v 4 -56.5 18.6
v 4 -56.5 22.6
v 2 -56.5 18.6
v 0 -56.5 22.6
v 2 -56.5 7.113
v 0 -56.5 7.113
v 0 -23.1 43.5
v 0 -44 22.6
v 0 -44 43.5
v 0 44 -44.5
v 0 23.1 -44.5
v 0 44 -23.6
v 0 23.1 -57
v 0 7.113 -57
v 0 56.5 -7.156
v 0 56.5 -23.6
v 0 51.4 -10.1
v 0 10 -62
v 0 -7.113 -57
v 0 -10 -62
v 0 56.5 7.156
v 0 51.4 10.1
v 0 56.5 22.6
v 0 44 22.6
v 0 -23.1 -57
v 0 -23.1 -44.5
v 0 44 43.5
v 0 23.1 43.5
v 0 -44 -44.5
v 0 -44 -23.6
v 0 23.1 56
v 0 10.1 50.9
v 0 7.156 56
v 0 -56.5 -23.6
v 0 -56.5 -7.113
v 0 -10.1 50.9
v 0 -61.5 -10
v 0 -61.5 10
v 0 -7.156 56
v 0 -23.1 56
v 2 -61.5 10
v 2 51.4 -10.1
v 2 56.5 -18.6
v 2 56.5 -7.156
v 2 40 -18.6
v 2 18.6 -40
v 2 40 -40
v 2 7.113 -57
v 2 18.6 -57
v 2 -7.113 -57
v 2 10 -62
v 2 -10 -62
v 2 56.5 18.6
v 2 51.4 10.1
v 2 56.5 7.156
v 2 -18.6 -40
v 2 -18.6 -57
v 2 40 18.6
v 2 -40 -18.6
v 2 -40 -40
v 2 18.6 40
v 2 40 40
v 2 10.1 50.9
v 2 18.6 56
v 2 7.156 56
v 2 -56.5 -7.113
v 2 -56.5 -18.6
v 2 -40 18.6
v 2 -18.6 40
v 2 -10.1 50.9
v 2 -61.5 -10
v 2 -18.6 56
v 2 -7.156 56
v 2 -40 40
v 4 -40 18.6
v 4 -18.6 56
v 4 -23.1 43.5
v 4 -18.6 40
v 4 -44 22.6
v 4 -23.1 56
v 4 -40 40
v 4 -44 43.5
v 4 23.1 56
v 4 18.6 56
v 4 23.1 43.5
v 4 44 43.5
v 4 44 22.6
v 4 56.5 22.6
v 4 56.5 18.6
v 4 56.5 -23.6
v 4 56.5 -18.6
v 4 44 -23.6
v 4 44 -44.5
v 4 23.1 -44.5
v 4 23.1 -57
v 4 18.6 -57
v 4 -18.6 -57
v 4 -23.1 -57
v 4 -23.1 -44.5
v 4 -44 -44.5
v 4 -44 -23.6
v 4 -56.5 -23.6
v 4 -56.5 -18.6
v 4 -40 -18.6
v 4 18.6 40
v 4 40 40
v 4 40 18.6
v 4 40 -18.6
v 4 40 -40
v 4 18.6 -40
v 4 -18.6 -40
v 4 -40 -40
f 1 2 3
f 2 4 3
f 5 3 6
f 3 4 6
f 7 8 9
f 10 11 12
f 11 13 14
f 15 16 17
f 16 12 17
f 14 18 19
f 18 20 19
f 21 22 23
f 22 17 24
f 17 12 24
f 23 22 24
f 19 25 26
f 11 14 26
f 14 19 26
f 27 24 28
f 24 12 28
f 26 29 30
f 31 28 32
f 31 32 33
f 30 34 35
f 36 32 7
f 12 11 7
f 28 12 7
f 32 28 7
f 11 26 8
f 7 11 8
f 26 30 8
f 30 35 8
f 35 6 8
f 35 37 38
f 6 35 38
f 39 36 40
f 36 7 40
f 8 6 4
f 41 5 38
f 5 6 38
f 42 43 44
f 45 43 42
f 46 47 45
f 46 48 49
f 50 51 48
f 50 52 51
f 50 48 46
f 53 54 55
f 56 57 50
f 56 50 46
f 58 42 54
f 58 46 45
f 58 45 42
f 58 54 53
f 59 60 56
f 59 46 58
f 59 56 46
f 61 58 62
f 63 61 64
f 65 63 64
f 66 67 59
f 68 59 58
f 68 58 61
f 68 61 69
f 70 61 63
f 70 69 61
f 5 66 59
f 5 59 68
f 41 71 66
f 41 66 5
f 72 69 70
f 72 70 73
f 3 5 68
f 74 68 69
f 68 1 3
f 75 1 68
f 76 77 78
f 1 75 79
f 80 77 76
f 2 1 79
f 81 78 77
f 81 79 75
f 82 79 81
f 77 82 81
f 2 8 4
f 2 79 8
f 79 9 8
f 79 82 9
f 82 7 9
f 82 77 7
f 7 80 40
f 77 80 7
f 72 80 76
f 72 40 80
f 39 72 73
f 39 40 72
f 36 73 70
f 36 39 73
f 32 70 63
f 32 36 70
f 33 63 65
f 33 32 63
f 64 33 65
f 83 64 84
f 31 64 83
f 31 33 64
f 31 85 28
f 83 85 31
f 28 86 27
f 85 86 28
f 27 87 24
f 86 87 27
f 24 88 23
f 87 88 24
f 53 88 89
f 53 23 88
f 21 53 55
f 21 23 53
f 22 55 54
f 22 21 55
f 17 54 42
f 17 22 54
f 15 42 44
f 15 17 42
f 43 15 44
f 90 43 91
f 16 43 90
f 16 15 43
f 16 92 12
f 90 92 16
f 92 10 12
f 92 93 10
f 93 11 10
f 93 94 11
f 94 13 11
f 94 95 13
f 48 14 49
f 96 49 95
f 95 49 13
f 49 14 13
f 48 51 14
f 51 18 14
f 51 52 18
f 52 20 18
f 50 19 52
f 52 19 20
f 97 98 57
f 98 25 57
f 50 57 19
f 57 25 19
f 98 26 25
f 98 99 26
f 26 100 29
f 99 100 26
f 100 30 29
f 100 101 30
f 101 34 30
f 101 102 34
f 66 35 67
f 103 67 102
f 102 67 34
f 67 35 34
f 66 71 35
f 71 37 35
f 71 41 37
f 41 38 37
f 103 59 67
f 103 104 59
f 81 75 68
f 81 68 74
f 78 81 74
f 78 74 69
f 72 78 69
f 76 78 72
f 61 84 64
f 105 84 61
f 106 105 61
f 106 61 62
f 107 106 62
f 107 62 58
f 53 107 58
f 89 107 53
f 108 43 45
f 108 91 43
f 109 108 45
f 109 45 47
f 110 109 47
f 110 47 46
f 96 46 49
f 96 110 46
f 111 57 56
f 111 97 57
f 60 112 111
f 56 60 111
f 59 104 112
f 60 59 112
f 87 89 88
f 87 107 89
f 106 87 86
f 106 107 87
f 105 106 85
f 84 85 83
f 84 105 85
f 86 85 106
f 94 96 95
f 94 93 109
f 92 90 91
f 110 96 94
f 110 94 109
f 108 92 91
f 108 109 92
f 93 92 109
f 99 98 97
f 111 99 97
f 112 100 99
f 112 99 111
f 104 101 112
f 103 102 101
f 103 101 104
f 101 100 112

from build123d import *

# Parameters (mm, degrees)
PAD_DEPTH       = 4
POCKET_DEPTH    = 2
POCKET001_DEPTH = 5


with BuildPart() as part:
    # Sketch001 → Pad (new body)
    with BuildSketch(Plane.YZ):
        Polygon((56.5, 56), (56.5, 39), (56.5, 7.155514), (51.4, 10.1), (51.4, -10.1), (56.5, -7.155514), (56.5, -40), (56.5, -57), (39.5, -57), (7.113249, -57), (10, -62), (-10, -62), (-7.113249, -57), (-39.5, -57), (-56.5, -57), (-56.5, -40), (-56.5, -7.113249), (-61.5, -10), (-61.5, 10), (-56.5, 7.113249), (-56.5, 39), (-56.5, 56), (-39.5, 56), (-7.155514, 56), (-10.1, 50.9), (10.1, 50.9), (7.155514, 56), (39.5, 56), align=None)
    extrude(amount=PAD_DEPTH)

    # Sketch → Pocket (cut)
    with BuildSketch(Plane.YZ.offset(4)):
        Polygon((-40, 40), (-18.6, 40), (-18.6, 62), (18.6, 62), (18.6, 40), (40, 40), (40, 18.6), (62, 18.6), (62, -18.6), (40, -18.6), (40, -40), (18.6, -40), (18.6, -62), (-18.6, -62), (-18.6, -40), (-40, -40), (-40, -18.6), (-62, -18.6), (-62, 18.6), (-40, 18.6), align=None)
    extrude(amount=-POCKET_DEPTH, mode=Mode.SUBTRACT)

    # Sketch002 → Pocket001 (cut)
    with BuildSketch(Plane.YZ.offset(4)):
        Polygon((-44, 43.5), (-44, 22.6), (-56.5, 22.6), (-56.5, 56), (-23.1, 56), (-23.1, 43.5), align=None)
        Polygon((23.1, 43.5), (23.1, 56), (56.5, 56), (56.5, 22.6), (44, 22.6), (44, 43.5), align=None)
        Polygon((-56.5, -23.6), (-44, -23.6), (-44, -44.5), (-23.1, -44.5), (-23.1, -57), (-56.5, -57), align=None)
        Polygon((23.1, -44.5), (44, -44.5), (44, -23.6), (56.5, -23.6), (56.5, -57), (23.1, -57), align=None)
    extrude(amount=-POCKET001_DEPTH, mode=Mode.SUBTRACT)


solid = part.part
